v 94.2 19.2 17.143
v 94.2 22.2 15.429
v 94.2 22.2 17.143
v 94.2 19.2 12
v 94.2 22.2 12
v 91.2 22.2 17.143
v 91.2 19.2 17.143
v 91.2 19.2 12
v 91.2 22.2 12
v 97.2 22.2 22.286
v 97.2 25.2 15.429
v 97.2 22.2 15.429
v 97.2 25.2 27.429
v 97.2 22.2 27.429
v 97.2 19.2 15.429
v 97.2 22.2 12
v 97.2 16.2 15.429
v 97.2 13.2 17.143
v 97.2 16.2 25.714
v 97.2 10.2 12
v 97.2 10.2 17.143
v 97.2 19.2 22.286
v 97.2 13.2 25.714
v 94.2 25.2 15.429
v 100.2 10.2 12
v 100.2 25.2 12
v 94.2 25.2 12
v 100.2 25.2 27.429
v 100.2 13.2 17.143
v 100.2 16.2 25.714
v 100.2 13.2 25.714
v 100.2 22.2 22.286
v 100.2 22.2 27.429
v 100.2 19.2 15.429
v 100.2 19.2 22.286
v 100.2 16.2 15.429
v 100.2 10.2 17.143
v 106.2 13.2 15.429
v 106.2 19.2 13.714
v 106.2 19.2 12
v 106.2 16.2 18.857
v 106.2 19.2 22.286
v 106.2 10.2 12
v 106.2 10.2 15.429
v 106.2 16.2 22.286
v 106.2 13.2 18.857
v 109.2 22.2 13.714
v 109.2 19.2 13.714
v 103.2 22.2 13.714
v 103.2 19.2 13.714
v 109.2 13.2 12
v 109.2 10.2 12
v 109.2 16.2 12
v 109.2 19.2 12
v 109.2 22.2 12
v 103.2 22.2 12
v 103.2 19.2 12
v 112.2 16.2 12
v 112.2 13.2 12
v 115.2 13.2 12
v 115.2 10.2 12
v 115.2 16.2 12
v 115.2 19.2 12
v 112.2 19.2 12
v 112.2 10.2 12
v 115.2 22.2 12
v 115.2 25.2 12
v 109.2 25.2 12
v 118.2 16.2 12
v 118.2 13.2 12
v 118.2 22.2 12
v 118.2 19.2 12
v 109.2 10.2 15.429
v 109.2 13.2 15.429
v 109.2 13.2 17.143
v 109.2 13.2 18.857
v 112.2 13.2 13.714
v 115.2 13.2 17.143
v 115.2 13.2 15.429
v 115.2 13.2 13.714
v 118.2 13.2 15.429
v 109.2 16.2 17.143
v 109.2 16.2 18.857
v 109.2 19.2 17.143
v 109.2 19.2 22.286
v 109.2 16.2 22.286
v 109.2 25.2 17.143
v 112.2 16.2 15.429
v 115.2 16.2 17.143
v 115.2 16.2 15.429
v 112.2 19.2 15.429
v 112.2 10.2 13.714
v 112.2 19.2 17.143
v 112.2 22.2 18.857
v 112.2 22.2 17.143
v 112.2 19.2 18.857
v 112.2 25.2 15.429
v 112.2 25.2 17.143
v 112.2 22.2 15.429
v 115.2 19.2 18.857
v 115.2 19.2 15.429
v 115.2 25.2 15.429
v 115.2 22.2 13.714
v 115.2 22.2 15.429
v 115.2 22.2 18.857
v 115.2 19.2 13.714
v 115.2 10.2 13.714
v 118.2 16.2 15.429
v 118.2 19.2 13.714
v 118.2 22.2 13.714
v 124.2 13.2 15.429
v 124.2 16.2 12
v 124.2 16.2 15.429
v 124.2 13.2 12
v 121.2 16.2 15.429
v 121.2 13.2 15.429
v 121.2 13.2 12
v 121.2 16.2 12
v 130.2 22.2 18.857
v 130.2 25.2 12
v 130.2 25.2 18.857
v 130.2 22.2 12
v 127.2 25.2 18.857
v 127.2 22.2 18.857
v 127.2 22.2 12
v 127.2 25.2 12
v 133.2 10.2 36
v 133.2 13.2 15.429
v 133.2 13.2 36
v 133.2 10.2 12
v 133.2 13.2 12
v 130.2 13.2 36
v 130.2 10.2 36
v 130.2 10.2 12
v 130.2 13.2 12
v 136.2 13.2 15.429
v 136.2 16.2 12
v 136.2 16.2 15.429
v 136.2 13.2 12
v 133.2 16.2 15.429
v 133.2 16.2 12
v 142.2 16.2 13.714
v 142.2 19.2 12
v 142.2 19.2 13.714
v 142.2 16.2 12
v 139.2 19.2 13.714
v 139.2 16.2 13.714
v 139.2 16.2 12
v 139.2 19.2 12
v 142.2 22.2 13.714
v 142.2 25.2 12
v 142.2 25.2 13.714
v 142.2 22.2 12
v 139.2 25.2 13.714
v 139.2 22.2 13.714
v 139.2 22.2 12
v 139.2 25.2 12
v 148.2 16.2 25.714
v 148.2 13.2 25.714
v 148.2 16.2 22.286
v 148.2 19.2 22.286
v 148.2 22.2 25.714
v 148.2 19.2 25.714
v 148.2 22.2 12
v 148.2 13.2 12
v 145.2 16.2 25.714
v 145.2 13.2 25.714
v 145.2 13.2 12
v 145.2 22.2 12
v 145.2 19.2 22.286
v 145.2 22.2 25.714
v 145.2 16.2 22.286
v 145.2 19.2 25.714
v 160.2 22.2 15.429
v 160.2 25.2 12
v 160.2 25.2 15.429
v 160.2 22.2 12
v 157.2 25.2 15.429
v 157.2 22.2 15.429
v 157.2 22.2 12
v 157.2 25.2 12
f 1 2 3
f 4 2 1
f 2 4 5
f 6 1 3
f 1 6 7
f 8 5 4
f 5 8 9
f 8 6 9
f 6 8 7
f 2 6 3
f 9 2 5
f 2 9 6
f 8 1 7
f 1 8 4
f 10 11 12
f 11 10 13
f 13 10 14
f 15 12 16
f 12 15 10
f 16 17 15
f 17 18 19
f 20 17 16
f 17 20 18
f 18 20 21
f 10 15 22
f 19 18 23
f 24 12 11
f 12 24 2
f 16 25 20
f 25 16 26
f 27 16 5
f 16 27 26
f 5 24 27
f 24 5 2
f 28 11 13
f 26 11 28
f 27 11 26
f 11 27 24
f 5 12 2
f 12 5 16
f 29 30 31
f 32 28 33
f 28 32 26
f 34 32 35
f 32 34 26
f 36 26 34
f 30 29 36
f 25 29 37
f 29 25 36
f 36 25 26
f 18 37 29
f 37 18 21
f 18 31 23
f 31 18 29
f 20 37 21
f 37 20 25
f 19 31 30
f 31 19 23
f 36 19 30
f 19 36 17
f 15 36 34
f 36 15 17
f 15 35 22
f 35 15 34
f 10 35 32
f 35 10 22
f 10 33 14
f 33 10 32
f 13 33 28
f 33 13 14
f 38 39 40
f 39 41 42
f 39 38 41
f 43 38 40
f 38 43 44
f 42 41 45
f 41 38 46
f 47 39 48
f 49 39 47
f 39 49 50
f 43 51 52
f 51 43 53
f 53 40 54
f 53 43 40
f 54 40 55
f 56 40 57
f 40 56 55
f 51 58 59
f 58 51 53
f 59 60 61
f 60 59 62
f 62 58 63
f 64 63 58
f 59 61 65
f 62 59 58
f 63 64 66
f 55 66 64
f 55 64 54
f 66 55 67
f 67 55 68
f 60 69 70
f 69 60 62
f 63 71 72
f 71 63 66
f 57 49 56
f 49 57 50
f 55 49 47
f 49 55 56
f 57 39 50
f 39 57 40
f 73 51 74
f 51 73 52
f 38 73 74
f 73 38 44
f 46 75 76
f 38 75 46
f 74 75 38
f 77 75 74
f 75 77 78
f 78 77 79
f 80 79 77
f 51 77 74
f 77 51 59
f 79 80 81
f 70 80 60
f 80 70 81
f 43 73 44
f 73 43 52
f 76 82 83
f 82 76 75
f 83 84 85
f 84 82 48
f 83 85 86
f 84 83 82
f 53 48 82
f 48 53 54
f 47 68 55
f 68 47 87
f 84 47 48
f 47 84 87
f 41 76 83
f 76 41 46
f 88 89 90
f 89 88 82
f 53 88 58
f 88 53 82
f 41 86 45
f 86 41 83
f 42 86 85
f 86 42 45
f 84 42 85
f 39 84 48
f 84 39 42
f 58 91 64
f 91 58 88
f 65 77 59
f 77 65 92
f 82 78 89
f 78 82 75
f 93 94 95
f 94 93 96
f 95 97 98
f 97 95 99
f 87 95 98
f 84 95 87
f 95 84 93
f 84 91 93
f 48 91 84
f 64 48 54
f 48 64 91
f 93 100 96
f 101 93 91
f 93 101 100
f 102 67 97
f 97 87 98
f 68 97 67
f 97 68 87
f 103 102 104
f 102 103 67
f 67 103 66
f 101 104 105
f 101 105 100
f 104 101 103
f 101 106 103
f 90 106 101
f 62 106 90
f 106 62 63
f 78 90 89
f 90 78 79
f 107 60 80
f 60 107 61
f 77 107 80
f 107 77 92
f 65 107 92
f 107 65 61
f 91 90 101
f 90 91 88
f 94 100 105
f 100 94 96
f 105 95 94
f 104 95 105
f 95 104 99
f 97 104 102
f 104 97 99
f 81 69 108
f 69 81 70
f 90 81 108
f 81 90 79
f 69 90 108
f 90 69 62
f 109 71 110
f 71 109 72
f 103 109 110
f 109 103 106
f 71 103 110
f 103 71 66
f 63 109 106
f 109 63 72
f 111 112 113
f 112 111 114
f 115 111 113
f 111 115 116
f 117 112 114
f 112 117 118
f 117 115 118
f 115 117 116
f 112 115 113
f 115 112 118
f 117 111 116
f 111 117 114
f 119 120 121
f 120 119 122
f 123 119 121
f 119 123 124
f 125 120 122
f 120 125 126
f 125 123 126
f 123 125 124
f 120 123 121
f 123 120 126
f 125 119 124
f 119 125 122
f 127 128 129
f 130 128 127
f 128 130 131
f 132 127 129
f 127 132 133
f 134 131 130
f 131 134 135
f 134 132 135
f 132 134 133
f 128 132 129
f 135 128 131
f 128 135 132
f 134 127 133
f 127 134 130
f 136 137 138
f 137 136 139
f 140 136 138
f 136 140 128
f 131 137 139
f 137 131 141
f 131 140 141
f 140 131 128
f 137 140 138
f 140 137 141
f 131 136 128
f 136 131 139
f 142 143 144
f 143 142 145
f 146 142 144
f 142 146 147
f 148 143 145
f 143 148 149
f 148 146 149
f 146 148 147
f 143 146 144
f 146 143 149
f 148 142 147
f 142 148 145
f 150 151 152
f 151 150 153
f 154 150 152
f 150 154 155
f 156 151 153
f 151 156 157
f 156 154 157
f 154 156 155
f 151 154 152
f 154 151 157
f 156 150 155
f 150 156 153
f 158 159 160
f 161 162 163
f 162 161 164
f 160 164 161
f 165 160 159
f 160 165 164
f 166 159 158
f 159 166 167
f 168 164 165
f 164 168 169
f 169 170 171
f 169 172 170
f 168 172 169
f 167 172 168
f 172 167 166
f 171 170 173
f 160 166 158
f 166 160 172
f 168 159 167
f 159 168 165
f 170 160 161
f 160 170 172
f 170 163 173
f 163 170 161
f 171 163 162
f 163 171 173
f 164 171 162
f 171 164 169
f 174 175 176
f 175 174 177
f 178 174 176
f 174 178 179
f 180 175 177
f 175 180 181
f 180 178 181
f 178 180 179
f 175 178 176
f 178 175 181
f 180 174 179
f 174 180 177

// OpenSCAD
union() {
	translate(v = [91.2, 19.200000000000003, 12.0]) {
		cube(size = [3.0, 3.0, 5.142857142857143]);
	}
	translate(v = [94.2, 22.200000000000003, 12.0]) {
		cube(size = [3.0, 3.0, 3.4285714285714284]);
	}
	translate(v = [97.2, 10.200000000000001, 12.0]) {
		cube(size = [3.0, 3.0, 5.142857142857143]);
	}
	translate(v = [97.2, 13.200000000000001, 12.0]) {
		cube(size = [3.0, 3.0, 13.714285714285714]);
	}
	translate(v = [97.2, 16.200000000000003, 12.0]) {
		cube(size = [3.0, 3.0, 3.4285714285714284]);
	}
	translate(v = [97.2, 19.200000000000003, 12.0]) {
		cube(size = [3.0, 3.0, 10.285714285714286]);
	}
	translate(v = [97.2, 22.200000000000003, 12.0]) {
		cube(size = [3.0, 3.0, 15.428571428571429]);
	}
	translate(v = [103.2, 19.200000000000003, 12.0]) {
		cube(size = [3.0, 3.0, 1.7142857142857142]);
	}
	translate(v = [106.2, 10.200000000000001, 12.0]) {
		cube(size = [3.0, 3.0, 3.4285714285714284]);
	}
	translate(v = [106.2, 13.200000000000001, 12.0]) {
		cube(size = [3.0, 3.0, 6.857142857142857]);
	}
	translate(v = [106.2, 16.200000000000003, 12.0]) {
		cube(size = [3.0, 3.0, 10.285714285714286]);
	}
	translate(v = [106.2, 19.200000000000003, 12.0]) {
		cube(size = [3.0, 3.0, 1.7142857142857142]);
	}
	translate(v = [109.2, 13.200000000000001, 12.0]) {
		cube(size = [3.0, 3.0, 5.142857142857143]);
	}
	translate(v = [109.2, 19.200000000000003, 12.0]) {
		cube(size = [3.0, 3.0, 5.142857142857143]);
	}
	translate(v = [109.2, 22.200000000000003, 12.0]) {
		cube(size = [3.0, 3.0, 5.142857142857143]);
	}
	translate(v = [112.2, 10.200000000000001, 12.0]) {
		cube(size = [3.0, 3.0, 1.7142857142857142]);
	}
	translate(v = [112.2, 13.200000000000001, 12.0]) {
		cube(size = [3.0, 3.0, 5.142857142857143]);
	}
	translate(v = [112.2, 16.200000000000003, 12.0]) {
		cube(size = [3.0, 3.0, 3.4285714285714284]);
	}
	translate(v = [112.2, 19.200000000000003, 12.0]) {
		cube(size = [3.0, 3.0, 6.857142857142857]);
	}
	translate(v = [112.2, 22.200000000000003, 12.0]) {
		cube(size = [3.0, 3.0, 3.4285714285714284]);
	}
	translate(v = [115.2, 13.200000000000001, 12.0]) {
		cube(size = [3.0, 3.0, 3.4285714285714284]);
	}
	translate(v = [115.2, 19.200000000000003, 12.0]) {
		cube(size = [3.0, 3.0, 1.7142857142857142]);
	}
	translate(v = [121.2, 13.200000000000001, 12.0]) {
		cube(size = [3.0, 3.0, 3.4285714285714284]);
	}
	translate(v = [127.2, 22.200000000000003, 12.0]) {
		cube(size = [3.0, 3.0, 6.857142857142857]);
	}
	translate(v = [130.2, 10.200000000000001, 12.0]) {
		cube(size = [3.0, 3.0, 24.0]);
	}
	translate(v = [133.2, 13.200000000000001, 12.0]) {
		cube(size = [3.0, 3.0, 3.4285714285714284]);
	}
	translate(v = [139.2, 16.200000000000003, 12.0]) {
		cube(size = [3.0, 3.0, 1.7142857142857142]);
	}
	translate(v = [139.2, 22.200000000000003, 12.0]) {
		cube(size = [3.0, 3.0, 1.7142857142857142]);
	}
	translate(v = [145.2, 13.200000000000001, 12.0]) {
		cube(size = [3.0, 3.0, 13.714285714285714]);
	}
	translate(v = [145.2, 16.200000000000003, 12.0]) {
		cube(size = [3.0, 3.0, 10.285714285714286]);
	}
	translate(v = [145.2, 19.200000000000003, 12.0]) {
		cube(size = [3.0, 3.0, 13.714285714285714]);
	}
	translate(v = [157.2, 22.200000000000003, 12.0]) {
		cube(size = [3.0, 3.0, 3.4285714285714284]);
	}
}
